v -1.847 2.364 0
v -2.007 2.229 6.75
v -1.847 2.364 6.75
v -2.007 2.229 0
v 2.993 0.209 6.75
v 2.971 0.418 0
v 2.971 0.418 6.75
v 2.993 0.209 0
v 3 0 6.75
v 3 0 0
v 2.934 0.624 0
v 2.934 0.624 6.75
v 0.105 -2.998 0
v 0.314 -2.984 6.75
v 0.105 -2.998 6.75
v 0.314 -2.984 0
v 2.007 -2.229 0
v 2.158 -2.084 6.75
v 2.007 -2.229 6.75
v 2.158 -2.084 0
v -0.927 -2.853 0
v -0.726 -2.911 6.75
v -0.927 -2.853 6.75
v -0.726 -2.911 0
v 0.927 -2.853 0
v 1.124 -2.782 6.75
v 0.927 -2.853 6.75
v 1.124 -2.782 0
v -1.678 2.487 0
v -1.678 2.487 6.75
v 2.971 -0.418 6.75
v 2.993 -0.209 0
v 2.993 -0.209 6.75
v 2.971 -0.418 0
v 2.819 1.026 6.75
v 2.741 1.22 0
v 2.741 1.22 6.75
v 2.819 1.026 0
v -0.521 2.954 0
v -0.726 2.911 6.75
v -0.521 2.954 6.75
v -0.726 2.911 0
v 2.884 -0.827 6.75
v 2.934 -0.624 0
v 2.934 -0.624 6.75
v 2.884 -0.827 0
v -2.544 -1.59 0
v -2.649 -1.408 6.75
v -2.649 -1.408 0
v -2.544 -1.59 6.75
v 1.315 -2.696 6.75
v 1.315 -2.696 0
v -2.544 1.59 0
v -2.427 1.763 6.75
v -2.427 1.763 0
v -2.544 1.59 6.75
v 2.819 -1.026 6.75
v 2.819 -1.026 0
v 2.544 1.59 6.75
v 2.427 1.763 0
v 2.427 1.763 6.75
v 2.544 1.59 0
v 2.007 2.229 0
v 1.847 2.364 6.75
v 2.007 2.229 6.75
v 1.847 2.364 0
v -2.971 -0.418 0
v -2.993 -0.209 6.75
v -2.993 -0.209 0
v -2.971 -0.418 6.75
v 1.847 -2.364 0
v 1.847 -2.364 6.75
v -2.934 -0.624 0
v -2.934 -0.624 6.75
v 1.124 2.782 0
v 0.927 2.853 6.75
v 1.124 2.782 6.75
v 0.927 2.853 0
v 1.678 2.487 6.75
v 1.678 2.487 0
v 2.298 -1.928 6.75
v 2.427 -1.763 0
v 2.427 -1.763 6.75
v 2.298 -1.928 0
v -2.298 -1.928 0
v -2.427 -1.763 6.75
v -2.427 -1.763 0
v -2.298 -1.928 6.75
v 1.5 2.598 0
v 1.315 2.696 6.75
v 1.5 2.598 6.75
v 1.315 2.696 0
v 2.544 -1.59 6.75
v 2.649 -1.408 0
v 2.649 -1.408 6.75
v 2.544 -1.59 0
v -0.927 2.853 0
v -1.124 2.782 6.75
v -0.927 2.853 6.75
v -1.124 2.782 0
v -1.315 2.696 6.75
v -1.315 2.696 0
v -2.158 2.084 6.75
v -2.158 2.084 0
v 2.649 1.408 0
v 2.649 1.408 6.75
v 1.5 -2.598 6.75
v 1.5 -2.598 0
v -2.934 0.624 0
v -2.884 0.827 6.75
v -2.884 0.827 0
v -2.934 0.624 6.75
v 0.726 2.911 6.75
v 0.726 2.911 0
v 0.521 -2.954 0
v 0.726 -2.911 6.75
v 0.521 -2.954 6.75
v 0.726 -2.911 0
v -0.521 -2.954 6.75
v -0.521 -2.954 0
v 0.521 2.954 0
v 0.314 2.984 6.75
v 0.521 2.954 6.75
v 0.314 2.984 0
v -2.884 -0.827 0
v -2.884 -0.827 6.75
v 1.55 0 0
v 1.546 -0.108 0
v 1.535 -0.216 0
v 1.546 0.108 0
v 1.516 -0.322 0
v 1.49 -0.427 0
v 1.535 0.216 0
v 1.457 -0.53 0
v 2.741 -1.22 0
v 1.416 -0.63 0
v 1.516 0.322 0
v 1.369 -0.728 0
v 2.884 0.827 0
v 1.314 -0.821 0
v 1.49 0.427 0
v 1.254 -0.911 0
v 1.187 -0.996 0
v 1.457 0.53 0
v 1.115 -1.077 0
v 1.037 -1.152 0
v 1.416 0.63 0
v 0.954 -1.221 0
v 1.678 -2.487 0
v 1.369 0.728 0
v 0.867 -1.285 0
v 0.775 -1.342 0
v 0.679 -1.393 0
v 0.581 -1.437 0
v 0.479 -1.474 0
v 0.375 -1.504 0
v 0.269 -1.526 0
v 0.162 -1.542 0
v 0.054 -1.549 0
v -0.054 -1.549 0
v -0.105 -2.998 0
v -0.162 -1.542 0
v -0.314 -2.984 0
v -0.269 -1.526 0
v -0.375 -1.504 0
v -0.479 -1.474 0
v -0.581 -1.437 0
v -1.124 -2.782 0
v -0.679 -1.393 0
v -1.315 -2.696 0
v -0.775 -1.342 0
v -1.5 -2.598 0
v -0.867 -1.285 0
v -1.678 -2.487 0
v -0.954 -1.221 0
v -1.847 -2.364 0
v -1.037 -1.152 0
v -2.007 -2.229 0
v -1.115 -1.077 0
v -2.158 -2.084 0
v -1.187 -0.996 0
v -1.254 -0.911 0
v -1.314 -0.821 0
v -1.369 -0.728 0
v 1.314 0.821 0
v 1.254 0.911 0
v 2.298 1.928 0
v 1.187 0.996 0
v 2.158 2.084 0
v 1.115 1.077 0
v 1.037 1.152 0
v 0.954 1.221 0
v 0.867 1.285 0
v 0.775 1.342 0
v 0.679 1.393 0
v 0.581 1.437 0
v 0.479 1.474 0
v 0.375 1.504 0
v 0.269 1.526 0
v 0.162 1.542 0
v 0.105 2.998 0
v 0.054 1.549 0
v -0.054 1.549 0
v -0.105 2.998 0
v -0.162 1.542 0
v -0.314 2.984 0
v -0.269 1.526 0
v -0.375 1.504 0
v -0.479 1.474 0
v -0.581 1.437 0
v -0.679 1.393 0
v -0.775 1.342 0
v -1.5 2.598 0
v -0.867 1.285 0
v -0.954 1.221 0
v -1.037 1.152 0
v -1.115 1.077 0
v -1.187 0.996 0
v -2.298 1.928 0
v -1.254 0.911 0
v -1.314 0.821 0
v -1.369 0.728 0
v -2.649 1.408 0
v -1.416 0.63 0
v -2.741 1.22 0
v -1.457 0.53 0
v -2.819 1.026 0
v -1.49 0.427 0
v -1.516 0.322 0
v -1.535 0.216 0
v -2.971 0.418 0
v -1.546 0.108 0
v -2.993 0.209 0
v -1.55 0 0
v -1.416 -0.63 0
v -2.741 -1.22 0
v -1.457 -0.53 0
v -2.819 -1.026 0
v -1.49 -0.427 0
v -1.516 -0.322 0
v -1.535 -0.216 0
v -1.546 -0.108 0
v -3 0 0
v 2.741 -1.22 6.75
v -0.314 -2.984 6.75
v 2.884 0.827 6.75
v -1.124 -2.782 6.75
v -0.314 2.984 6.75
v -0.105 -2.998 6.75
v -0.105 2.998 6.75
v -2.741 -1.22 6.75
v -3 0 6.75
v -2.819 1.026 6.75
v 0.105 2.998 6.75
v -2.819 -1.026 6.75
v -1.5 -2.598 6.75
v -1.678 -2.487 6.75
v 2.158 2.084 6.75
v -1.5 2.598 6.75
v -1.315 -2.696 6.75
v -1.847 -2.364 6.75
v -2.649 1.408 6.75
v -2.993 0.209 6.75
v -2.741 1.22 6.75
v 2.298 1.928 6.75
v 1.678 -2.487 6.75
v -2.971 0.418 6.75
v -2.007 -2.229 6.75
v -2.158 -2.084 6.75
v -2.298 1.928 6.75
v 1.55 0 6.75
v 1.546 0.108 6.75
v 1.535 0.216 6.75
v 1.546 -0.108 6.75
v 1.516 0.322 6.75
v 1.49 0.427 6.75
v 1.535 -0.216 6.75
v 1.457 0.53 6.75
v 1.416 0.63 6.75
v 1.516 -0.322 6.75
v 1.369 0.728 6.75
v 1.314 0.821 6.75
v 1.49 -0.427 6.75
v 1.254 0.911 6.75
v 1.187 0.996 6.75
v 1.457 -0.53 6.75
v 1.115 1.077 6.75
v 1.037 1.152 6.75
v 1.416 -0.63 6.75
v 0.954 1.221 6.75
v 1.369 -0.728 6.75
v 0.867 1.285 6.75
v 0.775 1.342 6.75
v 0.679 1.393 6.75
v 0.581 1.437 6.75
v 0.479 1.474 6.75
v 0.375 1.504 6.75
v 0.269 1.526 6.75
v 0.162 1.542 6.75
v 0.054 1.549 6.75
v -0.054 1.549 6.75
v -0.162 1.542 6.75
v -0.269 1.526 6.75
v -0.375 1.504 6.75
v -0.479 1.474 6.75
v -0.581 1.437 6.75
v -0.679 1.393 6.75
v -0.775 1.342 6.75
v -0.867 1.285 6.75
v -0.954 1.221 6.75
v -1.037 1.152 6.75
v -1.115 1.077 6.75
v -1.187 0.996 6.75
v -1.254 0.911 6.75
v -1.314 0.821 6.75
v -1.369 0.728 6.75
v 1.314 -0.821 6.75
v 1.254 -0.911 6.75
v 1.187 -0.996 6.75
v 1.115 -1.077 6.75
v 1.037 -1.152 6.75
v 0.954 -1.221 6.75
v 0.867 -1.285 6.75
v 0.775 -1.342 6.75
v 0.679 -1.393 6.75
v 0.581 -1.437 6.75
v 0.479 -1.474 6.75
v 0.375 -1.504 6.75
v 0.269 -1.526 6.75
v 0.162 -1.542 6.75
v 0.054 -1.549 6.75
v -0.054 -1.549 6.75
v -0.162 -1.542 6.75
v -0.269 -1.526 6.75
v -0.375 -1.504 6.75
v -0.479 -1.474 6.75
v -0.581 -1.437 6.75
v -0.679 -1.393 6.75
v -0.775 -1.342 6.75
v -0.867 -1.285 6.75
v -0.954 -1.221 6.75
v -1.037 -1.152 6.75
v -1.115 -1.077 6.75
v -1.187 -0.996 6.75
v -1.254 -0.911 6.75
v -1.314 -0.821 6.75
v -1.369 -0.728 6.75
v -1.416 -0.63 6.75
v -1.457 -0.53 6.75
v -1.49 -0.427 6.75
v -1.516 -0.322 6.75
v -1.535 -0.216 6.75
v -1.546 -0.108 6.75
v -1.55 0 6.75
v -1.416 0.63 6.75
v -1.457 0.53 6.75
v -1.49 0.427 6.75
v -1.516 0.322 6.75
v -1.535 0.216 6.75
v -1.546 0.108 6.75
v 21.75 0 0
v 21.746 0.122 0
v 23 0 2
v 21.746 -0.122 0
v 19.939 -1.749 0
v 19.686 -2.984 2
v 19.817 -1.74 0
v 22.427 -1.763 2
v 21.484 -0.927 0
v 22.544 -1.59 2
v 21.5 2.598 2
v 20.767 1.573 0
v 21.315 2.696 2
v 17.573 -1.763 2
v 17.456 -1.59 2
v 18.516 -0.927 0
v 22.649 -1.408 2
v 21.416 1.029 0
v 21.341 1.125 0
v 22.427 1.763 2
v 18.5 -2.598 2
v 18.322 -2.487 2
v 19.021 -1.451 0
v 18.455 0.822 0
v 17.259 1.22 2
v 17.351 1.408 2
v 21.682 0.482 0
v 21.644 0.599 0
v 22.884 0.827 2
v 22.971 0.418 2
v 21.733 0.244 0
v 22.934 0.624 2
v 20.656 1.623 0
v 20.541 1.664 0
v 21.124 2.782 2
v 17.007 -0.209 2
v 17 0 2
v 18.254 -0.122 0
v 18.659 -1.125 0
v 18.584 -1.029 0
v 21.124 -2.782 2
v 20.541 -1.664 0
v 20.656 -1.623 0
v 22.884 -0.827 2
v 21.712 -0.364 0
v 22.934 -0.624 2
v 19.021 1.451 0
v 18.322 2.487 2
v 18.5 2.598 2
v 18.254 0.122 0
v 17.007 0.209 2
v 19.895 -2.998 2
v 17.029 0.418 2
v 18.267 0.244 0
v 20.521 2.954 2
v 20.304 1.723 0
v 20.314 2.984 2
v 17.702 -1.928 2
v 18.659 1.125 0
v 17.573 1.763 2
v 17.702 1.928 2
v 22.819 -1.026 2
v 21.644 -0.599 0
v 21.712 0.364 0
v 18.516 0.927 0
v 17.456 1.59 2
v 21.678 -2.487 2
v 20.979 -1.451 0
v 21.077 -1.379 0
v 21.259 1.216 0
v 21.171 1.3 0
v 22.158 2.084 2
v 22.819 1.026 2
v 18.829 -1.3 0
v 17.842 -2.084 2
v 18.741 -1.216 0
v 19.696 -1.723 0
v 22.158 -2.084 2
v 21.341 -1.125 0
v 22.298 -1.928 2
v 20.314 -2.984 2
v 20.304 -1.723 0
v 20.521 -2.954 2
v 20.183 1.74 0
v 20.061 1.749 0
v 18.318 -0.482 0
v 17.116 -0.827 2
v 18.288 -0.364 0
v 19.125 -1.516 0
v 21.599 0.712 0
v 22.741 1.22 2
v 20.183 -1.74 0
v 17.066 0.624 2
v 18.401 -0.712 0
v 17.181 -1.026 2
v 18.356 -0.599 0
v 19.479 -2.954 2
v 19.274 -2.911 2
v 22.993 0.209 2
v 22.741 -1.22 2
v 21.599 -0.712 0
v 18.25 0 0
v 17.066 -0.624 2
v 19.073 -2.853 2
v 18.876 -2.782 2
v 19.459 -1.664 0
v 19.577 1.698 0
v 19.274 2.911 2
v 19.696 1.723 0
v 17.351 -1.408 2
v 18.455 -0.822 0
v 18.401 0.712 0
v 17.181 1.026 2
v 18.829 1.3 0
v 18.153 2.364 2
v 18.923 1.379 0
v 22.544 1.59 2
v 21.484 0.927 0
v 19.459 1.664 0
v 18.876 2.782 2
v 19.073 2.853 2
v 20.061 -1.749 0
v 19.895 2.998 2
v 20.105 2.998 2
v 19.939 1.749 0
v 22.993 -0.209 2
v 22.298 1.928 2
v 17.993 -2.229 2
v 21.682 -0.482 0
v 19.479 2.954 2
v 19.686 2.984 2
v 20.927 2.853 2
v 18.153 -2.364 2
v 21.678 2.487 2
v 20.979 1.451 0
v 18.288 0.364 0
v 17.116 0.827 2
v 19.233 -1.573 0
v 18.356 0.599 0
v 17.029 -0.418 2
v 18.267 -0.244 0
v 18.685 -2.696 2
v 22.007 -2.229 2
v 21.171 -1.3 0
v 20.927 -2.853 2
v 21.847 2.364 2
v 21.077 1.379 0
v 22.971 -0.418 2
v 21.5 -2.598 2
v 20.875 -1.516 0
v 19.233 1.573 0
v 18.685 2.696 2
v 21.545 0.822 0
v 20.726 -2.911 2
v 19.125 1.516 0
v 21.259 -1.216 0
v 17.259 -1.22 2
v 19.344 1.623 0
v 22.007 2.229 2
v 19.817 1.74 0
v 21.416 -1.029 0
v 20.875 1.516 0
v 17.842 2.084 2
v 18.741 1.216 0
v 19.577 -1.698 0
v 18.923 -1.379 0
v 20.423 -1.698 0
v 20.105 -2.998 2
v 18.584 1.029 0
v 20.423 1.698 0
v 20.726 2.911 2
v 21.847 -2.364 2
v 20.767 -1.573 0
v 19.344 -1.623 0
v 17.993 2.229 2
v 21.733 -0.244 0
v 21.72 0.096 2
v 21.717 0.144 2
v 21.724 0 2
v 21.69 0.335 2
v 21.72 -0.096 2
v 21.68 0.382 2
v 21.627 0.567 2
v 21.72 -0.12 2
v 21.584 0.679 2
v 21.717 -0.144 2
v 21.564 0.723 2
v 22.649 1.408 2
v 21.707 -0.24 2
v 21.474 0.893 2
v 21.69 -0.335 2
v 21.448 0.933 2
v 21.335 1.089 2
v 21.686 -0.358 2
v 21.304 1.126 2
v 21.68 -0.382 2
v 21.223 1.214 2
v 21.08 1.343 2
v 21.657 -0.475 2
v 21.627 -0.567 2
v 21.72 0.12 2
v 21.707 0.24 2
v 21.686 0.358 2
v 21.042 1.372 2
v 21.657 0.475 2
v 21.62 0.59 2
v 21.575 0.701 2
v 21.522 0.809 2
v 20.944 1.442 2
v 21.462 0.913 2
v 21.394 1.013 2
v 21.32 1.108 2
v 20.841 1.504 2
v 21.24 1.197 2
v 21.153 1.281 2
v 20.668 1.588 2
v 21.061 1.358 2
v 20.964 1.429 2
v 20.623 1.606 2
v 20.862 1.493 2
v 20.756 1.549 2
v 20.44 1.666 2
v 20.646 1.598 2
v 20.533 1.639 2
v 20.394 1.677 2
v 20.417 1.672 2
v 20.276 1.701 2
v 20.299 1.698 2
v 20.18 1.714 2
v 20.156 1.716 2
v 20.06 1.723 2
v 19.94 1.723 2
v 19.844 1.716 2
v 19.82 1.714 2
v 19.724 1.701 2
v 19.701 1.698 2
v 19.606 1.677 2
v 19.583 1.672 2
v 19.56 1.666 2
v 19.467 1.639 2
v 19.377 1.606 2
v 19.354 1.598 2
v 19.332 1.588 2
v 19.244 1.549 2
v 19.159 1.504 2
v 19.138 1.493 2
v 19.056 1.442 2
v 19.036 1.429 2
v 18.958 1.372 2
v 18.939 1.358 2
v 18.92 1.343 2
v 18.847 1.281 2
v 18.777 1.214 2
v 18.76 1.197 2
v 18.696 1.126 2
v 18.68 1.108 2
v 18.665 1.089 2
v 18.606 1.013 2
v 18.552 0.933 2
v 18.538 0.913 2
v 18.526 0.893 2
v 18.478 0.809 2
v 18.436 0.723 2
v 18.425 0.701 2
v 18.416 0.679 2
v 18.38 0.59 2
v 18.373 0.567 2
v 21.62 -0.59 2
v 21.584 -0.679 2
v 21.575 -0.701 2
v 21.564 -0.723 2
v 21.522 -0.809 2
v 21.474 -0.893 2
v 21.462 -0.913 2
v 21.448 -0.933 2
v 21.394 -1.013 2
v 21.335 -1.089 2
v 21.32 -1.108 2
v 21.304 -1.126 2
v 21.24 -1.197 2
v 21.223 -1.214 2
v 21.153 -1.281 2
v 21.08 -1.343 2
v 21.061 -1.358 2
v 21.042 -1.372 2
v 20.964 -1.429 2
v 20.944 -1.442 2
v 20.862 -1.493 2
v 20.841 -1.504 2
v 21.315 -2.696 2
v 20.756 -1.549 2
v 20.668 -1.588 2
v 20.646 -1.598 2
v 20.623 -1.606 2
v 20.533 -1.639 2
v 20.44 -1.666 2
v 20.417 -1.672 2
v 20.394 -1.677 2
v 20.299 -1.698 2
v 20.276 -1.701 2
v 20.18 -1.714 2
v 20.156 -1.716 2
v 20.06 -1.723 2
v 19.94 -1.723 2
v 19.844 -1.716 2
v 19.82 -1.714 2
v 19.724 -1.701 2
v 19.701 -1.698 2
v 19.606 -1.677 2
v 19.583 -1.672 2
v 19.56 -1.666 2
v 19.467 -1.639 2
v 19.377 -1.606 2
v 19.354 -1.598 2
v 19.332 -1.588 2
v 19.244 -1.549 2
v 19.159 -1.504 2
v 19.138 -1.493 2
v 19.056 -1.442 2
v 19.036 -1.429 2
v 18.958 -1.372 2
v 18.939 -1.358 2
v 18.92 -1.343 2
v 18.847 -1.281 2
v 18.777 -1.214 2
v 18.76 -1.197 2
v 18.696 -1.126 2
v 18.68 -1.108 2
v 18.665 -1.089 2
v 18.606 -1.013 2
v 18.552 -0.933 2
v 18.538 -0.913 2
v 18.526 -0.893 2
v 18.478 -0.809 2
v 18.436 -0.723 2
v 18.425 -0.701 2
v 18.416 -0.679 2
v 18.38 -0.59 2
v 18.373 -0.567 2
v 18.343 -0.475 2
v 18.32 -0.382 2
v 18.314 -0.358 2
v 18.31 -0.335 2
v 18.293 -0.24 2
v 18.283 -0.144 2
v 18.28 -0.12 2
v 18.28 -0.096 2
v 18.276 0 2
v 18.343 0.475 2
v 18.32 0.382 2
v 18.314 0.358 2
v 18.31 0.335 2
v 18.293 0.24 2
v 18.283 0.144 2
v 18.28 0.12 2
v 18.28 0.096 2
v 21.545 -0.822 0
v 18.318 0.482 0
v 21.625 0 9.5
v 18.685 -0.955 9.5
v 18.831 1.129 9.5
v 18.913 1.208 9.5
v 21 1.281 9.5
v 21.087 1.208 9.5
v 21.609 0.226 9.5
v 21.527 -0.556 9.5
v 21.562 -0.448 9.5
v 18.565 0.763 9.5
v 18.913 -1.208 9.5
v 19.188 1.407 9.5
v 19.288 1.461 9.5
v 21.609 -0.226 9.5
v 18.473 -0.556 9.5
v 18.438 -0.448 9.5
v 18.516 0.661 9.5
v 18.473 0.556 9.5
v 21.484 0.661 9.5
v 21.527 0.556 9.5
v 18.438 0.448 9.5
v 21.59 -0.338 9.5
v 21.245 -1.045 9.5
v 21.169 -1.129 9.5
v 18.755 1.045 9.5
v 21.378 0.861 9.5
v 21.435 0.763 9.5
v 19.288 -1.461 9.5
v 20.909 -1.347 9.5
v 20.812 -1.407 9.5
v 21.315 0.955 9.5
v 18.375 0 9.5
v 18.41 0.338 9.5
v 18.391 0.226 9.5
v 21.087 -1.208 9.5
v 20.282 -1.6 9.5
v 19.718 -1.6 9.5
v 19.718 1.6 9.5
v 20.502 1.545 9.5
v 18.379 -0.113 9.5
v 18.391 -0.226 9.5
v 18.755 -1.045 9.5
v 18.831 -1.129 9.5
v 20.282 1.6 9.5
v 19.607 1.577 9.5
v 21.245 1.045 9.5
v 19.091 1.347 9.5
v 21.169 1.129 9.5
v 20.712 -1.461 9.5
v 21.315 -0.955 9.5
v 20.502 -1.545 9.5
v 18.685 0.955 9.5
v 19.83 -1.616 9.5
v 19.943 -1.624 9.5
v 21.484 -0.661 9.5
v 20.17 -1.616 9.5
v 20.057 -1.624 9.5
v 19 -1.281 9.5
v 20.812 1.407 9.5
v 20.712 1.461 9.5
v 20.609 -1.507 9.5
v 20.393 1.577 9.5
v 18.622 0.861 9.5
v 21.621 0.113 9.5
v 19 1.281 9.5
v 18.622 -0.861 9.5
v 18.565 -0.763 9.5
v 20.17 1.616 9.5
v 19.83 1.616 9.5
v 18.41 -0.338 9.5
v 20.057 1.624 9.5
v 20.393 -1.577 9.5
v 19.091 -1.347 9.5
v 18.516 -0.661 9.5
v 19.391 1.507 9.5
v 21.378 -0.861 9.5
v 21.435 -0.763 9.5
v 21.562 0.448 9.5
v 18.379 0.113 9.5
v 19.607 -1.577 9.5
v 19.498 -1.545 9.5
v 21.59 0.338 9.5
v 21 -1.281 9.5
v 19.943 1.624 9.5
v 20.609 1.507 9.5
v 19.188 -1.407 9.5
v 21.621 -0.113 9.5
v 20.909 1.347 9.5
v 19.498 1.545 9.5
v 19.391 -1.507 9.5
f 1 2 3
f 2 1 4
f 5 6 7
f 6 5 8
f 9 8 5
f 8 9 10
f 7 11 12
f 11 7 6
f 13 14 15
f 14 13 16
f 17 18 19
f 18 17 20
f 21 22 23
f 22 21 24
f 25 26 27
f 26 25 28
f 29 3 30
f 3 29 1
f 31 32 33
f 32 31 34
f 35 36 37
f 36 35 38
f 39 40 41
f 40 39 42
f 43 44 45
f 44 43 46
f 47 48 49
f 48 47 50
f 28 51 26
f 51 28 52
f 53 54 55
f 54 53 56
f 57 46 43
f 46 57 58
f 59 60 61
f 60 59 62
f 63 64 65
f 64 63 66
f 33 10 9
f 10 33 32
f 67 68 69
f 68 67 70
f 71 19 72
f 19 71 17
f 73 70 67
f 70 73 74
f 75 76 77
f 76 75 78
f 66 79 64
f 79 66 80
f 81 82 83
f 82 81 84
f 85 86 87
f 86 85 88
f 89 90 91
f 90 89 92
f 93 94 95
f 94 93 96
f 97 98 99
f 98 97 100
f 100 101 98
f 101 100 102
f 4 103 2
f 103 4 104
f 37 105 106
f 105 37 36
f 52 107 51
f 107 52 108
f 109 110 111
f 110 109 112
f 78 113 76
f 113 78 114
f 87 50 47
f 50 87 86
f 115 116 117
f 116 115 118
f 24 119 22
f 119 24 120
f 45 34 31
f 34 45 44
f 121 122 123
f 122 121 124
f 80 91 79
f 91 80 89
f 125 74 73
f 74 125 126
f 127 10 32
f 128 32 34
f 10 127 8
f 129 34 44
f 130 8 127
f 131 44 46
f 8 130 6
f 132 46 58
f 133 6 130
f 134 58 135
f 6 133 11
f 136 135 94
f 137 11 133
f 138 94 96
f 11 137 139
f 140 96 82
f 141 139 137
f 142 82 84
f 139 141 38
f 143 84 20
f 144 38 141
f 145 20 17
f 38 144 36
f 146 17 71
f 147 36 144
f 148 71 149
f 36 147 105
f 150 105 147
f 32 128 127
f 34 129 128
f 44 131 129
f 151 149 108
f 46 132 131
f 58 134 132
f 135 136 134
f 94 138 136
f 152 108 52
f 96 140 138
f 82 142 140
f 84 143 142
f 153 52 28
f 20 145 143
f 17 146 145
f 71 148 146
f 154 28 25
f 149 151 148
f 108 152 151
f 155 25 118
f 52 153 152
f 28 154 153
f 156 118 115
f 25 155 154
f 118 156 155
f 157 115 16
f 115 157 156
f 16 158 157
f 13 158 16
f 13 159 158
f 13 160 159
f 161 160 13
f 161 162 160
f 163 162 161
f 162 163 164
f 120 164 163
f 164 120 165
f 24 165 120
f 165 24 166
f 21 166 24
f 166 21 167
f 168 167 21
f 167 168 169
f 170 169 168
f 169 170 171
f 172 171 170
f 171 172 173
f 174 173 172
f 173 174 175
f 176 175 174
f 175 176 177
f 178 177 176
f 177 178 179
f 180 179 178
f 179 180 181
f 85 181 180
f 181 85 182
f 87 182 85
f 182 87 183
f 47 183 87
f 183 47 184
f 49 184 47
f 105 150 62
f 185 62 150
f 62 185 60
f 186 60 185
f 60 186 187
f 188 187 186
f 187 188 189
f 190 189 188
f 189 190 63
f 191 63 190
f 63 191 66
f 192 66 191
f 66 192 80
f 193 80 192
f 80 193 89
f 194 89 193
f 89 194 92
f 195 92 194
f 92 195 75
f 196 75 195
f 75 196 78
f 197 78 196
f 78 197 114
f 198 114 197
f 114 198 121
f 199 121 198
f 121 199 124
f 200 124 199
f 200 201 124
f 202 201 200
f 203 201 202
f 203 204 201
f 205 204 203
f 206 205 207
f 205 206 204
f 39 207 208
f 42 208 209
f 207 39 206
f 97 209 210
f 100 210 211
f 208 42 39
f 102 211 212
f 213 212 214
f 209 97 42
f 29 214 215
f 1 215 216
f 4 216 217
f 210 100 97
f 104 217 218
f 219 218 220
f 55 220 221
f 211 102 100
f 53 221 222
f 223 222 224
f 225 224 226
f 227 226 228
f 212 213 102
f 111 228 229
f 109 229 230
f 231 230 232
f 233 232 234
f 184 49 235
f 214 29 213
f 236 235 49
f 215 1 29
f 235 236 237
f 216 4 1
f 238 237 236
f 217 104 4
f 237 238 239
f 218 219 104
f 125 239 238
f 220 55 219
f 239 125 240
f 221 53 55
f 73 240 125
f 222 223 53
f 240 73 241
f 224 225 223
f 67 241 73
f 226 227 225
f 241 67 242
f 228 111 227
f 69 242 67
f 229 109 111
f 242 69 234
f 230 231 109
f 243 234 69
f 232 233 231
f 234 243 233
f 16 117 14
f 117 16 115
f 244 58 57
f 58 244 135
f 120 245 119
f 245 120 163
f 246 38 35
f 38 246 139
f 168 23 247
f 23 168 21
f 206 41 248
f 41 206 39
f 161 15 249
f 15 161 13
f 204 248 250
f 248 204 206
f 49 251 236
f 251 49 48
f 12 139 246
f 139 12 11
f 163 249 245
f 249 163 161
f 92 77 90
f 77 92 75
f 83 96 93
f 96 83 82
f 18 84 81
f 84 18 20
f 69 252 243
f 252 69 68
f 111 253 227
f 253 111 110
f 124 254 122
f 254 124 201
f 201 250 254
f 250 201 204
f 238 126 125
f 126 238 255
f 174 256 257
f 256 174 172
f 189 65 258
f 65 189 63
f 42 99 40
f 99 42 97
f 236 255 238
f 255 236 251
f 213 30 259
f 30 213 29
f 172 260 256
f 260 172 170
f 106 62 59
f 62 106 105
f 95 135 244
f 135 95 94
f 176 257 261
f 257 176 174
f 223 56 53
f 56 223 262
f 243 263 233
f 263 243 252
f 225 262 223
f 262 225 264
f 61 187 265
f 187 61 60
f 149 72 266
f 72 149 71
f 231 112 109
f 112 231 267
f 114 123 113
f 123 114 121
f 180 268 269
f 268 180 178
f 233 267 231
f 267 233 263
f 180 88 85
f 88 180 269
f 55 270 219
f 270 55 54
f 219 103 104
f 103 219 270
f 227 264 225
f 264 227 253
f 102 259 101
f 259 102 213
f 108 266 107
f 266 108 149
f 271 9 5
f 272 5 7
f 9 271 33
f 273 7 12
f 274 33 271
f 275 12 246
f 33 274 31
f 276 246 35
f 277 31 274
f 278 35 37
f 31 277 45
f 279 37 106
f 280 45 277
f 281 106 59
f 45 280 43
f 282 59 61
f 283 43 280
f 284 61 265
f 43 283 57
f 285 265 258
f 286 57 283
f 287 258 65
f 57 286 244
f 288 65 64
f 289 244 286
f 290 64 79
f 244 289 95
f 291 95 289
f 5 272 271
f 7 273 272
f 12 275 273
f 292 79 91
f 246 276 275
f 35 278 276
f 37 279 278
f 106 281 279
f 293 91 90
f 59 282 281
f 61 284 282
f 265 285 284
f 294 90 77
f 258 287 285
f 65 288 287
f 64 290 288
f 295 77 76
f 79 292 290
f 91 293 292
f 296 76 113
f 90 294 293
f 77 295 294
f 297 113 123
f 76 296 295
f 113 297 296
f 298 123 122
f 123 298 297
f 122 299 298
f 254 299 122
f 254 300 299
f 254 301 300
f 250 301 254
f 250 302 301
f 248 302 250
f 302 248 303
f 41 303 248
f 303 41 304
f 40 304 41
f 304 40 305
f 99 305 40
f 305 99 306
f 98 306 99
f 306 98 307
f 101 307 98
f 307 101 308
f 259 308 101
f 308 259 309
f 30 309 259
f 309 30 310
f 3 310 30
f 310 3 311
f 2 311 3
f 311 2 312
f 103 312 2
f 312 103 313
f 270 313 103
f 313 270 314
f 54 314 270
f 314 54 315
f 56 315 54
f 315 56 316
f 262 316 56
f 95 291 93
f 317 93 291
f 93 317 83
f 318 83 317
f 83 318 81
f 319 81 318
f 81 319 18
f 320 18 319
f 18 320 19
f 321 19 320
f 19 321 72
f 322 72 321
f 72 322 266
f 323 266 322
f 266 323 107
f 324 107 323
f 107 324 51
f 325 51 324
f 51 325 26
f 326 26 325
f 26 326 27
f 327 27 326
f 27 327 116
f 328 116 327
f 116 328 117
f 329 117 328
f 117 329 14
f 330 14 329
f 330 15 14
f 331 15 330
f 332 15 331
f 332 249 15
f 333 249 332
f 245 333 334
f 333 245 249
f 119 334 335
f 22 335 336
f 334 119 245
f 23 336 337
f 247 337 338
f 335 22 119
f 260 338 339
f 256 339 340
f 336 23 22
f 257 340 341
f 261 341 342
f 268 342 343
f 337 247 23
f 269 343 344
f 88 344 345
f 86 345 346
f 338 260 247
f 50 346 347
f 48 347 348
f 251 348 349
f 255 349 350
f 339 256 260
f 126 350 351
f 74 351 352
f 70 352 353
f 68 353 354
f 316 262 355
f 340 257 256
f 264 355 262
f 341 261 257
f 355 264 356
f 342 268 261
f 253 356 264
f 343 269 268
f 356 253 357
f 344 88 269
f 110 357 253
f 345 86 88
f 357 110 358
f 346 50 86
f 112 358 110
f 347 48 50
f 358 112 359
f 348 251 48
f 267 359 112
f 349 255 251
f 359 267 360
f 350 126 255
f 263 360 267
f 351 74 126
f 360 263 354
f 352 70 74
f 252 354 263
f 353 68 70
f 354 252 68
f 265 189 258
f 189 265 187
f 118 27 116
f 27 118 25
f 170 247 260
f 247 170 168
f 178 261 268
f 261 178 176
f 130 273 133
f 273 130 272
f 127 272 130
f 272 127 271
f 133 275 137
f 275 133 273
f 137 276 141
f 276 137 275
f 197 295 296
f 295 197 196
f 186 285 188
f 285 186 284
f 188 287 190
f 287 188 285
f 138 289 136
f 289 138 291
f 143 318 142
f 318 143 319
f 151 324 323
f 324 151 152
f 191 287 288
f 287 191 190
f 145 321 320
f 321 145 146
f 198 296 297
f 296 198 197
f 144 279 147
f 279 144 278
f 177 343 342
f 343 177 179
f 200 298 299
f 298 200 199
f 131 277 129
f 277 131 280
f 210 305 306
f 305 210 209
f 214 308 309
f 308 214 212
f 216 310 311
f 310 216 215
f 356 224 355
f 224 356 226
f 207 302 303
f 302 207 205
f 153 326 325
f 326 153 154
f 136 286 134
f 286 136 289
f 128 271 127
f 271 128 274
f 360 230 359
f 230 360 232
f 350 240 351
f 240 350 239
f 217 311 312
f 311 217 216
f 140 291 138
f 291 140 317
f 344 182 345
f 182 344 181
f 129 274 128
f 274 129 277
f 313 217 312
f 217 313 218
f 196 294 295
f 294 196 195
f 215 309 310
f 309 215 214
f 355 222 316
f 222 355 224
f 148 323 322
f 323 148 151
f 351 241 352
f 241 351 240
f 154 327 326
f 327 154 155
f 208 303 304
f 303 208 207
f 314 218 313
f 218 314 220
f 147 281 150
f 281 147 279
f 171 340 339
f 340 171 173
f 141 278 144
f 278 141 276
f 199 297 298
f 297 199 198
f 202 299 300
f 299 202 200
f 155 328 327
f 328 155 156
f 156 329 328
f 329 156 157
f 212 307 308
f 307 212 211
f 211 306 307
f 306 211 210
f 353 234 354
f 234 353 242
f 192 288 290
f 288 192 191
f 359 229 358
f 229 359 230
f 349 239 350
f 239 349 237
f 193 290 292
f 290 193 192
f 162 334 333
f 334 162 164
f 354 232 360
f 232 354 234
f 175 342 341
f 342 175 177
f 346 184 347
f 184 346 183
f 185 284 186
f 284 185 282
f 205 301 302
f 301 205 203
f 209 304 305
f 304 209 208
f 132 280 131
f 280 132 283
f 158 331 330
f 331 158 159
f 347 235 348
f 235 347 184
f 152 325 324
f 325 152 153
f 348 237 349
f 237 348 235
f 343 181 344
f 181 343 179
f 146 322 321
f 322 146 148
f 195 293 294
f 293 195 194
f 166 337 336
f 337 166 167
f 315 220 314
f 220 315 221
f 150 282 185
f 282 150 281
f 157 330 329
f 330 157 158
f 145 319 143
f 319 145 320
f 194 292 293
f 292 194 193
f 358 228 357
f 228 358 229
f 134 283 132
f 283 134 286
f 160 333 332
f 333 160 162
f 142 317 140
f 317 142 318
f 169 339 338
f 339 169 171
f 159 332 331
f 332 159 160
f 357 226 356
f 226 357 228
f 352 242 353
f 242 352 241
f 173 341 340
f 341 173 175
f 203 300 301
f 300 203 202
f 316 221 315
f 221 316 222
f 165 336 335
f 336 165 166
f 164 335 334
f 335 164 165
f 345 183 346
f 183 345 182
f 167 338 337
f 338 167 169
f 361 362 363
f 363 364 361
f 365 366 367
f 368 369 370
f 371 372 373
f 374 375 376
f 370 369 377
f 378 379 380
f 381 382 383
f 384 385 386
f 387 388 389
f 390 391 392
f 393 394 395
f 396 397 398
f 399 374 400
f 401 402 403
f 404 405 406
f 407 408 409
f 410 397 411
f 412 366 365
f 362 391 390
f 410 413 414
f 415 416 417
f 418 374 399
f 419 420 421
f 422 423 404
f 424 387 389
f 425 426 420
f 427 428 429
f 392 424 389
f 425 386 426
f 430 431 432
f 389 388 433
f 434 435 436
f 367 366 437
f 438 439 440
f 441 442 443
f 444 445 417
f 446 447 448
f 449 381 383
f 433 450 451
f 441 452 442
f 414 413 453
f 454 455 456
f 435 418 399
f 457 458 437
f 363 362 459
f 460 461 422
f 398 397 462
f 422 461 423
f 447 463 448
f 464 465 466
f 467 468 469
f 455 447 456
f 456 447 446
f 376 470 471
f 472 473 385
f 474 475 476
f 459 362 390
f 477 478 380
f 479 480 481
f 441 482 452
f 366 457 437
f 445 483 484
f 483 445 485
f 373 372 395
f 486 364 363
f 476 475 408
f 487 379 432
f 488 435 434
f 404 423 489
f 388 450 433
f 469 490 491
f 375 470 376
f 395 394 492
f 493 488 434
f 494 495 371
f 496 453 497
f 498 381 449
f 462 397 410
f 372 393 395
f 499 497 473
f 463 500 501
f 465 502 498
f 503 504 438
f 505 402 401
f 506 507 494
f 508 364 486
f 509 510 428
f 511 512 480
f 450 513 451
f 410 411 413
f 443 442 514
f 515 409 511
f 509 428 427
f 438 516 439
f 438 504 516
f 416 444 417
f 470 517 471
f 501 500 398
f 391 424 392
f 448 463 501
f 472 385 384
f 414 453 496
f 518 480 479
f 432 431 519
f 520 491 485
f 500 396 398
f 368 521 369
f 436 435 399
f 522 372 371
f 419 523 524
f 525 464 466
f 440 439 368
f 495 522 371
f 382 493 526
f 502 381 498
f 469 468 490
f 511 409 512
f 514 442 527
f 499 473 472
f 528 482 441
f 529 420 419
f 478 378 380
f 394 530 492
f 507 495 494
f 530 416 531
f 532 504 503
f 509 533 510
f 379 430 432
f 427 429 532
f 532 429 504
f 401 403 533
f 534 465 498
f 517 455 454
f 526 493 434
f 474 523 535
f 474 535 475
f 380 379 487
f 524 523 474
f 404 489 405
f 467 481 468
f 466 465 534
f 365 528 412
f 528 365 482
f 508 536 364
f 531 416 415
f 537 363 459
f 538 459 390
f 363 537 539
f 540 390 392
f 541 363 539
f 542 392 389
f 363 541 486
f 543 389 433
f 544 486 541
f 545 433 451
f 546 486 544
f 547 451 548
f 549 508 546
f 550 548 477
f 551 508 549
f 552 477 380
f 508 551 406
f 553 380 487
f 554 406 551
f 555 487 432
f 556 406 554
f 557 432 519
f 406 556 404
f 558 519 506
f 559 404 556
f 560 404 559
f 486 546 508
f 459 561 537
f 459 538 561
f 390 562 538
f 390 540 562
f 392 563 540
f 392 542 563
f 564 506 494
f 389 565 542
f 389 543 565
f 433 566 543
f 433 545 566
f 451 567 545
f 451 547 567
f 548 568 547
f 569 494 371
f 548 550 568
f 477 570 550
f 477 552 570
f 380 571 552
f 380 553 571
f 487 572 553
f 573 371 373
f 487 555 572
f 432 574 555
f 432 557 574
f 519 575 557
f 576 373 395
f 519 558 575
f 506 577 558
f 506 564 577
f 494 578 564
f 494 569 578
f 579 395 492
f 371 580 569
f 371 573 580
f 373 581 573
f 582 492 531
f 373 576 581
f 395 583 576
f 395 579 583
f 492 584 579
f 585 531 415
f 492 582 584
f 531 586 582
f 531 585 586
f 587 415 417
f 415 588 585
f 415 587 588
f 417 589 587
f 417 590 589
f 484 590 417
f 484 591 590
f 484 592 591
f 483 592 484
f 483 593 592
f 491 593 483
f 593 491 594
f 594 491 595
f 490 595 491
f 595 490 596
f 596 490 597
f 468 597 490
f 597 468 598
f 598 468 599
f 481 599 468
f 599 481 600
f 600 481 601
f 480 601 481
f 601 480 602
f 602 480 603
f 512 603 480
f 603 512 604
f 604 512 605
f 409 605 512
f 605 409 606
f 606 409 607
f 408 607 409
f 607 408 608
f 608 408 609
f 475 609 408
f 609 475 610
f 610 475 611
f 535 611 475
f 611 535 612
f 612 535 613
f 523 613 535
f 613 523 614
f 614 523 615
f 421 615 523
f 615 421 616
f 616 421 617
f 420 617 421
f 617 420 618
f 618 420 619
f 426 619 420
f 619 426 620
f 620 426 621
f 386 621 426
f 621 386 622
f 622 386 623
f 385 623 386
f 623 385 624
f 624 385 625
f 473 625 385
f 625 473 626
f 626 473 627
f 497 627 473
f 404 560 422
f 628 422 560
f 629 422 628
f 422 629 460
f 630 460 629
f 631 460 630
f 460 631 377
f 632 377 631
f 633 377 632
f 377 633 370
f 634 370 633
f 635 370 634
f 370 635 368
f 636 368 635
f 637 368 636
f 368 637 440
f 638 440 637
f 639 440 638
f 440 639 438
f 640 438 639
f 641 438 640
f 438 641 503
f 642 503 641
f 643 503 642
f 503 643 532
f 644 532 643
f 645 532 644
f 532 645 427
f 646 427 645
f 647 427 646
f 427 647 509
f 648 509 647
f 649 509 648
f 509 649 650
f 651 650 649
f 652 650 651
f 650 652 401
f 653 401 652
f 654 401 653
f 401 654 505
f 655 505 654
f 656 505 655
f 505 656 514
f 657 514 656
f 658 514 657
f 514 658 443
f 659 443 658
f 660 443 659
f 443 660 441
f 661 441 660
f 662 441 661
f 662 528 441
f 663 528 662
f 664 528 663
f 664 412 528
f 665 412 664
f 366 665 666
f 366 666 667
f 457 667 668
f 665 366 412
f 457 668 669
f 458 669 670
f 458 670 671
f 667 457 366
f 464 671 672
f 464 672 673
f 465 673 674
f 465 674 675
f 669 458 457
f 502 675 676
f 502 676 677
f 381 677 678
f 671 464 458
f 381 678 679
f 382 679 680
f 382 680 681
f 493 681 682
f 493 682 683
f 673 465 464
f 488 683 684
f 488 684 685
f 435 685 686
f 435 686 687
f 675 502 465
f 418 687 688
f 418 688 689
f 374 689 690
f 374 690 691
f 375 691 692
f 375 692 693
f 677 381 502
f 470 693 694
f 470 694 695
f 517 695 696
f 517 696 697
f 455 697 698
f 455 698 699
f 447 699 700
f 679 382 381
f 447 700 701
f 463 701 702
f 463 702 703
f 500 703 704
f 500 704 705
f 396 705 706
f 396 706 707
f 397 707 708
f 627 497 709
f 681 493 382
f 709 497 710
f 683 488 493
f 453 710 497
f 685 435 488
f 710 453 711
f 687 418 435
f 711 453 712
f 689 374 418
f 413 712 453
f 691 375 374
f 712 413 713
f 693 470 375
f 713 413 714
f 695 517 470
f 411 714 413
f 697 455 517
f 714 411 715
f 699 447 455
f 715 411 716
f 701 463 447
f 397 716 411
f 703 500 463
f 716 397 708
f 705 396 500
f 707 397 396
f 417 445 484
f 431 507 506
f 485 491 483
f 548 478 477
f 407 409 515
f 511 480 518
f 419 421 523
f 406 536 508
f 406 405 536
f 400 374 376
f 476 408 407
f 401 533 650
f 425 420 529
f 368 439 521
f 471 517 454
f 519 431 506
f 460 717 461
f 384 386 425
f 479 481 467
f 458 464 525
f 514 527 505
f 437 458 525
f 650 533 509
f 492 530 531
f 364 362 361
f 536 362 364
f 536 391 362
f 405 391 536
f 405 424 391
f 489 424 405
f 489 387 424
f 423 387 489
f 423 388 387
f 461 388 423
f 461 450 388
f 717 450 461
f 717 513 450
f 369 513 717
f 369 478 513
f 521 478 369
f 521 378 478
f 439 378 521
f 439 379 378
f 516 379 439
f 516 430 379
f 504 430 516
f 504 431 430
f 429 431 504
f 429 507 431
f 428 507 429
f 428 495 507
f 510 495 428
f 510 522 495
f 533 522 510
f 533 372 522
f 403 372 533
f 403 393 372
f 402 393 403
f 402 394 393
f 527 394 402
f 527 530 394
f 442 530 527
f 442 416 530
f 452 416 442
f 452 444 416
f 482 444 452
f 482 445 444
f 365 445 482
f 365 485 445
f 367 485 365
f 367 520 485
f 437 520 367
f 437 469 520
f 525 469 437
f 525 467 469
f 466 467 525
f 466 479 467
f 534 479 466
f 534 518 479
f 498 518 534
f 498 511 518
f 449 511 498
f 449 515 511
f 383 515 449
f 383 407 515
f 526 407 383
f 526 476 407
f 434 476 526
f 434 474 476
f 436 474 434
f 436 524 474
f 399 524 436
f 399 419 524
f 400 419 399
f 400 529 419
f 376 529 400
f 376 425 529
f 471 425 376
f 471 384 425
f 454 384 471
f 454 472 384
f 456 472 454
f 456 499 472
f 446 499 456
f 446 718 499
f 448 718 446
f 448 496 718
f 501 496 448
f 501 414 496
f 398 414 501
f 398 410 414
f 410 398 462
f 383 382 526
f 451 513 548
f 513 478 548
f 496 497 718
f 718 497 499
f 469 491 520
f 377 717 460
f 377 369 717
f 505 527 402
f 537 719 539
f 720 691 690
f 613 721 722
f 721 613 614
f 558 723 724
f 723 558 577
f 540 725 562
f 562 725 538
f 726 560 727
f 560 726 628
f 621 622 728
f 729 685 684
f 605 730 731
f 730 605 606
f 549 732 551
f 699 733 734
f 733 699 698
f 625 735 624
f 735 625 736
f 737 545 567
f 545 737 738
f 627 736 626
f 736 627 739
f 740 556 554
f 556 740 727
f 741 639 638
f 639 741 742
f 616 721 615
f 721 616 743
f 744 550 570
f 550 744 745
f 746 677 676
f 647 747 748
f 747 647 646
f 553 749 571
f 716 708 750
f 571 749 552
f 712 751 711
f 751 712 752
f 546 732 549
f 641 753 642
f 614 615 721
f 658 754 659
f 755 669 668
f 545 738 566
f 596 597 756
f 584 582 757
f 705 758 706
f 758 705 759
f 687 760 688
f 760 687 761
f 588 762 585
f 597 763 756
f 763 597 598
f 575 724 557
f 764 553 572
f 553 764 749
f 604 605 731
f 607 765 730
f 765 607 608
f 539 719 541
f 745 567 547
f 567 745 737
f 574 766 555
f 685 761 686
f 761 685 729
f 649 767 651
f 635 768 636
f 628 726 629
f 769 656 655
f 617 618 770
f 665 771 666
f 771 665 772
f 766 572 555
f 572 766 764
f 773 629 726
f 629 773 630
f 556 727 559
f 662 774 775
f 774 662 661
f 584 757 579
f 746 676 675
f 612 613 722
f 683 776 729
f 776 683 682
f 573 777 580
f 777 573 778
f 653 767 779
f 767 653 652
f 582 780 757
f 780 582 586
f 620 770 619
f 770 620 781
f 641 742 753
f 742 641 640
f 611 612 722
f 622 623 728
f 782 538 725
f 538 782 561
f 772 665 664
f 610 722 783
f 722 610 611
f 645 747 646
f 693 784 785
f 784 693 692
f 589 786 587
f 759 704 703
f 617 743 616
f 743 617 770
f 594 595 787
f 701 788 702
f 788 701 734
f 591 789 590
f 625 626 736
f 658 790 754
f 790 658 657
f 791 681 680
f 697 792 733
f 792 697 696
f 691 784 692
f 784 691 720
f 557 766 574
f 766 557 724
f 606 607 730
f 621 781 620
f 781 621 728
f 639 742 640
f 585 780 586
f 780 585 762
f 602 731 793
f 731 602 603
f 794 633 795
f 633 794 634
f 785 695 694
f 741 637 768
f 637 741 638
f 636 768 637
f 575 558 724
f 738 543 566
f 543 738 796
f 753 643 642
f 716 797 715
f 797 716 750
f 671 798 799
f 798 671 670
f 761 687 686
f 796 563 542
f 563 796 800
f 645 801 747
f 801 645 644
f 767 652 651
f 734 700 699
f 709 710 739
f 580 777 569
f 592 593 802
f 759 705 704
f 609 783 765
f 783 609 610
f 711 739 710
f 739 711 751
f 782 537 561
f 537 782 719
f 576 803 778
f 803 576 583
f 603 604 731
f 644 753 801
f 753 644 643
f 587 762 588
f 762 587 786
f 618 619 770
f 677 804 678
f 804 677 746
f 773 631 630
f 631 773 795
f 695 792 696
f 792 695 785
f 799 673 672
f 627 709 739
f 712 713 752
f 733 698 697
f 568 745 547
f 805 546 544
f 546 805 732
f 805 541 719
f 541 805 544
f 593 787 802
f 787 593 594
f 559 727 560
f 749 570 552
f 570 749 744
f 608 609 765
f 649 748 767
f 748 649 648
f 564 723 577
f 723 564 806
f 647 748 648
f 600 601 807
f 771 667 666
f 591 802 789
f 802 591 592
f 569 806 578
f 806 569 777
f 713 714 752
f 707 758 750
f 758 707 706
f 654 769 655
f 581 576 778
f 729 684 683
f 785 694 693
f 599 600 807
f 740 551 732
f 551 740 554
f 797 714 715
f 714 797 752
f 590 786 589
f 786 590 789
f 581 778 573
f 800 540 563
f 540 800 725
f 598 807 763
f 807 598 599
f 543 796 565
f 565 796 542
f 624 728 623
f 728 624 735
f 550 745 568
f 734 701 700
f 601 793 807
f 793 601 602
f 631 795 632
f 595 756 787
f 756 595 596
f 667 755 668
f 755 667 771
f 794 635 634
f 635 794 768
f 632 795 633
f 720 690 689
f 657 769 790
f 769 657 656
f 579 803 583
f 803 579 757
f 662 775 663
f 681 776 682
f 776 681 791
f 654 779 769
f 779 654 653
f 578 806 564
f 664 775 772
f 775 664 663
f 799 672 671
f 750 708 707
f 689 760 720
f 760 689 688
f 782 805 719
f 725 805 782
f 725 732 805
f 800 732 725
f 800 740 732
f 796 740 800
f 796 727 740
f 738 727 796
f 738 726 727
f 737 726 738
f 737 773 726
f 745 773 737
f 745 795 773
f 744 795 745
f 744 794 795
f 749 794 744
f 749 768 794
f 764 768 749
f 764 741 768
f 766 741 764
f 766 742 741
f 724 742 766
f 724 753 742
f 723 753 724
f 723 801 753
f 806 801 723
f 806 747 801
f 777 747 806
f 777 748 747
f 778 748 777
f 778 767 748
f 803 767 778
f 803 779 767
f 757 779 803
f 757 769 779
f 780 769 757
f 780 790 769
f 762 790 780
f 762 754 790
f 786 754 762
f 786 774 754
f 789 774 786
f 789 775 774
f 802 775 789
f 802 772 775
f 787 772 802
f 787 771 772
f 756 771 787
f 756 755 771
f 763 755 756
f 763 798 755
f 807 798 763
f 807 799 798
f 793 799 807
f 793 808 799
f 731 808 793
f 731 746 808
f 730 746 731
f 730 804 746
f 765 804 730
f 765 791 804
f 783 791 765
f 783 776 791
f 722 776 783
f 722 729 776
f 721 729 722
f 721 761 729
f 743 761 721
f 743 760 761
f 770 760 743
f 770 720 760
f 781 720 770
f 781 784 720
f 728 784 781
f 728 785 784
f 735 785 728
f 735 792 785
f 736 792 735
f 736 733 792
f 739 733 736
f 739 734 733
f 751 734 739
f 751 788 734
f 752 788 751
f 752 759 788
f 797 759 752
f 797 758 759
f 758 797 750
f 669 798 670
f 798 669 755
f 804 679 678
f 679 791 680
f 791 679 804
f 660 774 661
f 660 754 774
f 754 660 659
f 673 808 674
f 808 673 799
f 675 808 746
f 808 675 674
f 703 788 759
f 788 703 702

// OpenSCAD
printer_nozzle_od = 0.4;

$fn = $preview ? 32 : 90;

// standoff (m3)

difference() {
    cylinder(d = 6, h = 6.75);
    cylinder(d = 2.7 + printer_nozzle_od, h = 6.75);
}

// button
translate([20, 0, 0]) {
    cylinder(d1 = 3.5, d2 = 6, h = 6.75 - (4.5 + 0.25));
    cylinder(d1 = 3.5, d2 = 3.25, h = 6.75 - (4.5 + 0.25) + 5.5 + 2);
}
